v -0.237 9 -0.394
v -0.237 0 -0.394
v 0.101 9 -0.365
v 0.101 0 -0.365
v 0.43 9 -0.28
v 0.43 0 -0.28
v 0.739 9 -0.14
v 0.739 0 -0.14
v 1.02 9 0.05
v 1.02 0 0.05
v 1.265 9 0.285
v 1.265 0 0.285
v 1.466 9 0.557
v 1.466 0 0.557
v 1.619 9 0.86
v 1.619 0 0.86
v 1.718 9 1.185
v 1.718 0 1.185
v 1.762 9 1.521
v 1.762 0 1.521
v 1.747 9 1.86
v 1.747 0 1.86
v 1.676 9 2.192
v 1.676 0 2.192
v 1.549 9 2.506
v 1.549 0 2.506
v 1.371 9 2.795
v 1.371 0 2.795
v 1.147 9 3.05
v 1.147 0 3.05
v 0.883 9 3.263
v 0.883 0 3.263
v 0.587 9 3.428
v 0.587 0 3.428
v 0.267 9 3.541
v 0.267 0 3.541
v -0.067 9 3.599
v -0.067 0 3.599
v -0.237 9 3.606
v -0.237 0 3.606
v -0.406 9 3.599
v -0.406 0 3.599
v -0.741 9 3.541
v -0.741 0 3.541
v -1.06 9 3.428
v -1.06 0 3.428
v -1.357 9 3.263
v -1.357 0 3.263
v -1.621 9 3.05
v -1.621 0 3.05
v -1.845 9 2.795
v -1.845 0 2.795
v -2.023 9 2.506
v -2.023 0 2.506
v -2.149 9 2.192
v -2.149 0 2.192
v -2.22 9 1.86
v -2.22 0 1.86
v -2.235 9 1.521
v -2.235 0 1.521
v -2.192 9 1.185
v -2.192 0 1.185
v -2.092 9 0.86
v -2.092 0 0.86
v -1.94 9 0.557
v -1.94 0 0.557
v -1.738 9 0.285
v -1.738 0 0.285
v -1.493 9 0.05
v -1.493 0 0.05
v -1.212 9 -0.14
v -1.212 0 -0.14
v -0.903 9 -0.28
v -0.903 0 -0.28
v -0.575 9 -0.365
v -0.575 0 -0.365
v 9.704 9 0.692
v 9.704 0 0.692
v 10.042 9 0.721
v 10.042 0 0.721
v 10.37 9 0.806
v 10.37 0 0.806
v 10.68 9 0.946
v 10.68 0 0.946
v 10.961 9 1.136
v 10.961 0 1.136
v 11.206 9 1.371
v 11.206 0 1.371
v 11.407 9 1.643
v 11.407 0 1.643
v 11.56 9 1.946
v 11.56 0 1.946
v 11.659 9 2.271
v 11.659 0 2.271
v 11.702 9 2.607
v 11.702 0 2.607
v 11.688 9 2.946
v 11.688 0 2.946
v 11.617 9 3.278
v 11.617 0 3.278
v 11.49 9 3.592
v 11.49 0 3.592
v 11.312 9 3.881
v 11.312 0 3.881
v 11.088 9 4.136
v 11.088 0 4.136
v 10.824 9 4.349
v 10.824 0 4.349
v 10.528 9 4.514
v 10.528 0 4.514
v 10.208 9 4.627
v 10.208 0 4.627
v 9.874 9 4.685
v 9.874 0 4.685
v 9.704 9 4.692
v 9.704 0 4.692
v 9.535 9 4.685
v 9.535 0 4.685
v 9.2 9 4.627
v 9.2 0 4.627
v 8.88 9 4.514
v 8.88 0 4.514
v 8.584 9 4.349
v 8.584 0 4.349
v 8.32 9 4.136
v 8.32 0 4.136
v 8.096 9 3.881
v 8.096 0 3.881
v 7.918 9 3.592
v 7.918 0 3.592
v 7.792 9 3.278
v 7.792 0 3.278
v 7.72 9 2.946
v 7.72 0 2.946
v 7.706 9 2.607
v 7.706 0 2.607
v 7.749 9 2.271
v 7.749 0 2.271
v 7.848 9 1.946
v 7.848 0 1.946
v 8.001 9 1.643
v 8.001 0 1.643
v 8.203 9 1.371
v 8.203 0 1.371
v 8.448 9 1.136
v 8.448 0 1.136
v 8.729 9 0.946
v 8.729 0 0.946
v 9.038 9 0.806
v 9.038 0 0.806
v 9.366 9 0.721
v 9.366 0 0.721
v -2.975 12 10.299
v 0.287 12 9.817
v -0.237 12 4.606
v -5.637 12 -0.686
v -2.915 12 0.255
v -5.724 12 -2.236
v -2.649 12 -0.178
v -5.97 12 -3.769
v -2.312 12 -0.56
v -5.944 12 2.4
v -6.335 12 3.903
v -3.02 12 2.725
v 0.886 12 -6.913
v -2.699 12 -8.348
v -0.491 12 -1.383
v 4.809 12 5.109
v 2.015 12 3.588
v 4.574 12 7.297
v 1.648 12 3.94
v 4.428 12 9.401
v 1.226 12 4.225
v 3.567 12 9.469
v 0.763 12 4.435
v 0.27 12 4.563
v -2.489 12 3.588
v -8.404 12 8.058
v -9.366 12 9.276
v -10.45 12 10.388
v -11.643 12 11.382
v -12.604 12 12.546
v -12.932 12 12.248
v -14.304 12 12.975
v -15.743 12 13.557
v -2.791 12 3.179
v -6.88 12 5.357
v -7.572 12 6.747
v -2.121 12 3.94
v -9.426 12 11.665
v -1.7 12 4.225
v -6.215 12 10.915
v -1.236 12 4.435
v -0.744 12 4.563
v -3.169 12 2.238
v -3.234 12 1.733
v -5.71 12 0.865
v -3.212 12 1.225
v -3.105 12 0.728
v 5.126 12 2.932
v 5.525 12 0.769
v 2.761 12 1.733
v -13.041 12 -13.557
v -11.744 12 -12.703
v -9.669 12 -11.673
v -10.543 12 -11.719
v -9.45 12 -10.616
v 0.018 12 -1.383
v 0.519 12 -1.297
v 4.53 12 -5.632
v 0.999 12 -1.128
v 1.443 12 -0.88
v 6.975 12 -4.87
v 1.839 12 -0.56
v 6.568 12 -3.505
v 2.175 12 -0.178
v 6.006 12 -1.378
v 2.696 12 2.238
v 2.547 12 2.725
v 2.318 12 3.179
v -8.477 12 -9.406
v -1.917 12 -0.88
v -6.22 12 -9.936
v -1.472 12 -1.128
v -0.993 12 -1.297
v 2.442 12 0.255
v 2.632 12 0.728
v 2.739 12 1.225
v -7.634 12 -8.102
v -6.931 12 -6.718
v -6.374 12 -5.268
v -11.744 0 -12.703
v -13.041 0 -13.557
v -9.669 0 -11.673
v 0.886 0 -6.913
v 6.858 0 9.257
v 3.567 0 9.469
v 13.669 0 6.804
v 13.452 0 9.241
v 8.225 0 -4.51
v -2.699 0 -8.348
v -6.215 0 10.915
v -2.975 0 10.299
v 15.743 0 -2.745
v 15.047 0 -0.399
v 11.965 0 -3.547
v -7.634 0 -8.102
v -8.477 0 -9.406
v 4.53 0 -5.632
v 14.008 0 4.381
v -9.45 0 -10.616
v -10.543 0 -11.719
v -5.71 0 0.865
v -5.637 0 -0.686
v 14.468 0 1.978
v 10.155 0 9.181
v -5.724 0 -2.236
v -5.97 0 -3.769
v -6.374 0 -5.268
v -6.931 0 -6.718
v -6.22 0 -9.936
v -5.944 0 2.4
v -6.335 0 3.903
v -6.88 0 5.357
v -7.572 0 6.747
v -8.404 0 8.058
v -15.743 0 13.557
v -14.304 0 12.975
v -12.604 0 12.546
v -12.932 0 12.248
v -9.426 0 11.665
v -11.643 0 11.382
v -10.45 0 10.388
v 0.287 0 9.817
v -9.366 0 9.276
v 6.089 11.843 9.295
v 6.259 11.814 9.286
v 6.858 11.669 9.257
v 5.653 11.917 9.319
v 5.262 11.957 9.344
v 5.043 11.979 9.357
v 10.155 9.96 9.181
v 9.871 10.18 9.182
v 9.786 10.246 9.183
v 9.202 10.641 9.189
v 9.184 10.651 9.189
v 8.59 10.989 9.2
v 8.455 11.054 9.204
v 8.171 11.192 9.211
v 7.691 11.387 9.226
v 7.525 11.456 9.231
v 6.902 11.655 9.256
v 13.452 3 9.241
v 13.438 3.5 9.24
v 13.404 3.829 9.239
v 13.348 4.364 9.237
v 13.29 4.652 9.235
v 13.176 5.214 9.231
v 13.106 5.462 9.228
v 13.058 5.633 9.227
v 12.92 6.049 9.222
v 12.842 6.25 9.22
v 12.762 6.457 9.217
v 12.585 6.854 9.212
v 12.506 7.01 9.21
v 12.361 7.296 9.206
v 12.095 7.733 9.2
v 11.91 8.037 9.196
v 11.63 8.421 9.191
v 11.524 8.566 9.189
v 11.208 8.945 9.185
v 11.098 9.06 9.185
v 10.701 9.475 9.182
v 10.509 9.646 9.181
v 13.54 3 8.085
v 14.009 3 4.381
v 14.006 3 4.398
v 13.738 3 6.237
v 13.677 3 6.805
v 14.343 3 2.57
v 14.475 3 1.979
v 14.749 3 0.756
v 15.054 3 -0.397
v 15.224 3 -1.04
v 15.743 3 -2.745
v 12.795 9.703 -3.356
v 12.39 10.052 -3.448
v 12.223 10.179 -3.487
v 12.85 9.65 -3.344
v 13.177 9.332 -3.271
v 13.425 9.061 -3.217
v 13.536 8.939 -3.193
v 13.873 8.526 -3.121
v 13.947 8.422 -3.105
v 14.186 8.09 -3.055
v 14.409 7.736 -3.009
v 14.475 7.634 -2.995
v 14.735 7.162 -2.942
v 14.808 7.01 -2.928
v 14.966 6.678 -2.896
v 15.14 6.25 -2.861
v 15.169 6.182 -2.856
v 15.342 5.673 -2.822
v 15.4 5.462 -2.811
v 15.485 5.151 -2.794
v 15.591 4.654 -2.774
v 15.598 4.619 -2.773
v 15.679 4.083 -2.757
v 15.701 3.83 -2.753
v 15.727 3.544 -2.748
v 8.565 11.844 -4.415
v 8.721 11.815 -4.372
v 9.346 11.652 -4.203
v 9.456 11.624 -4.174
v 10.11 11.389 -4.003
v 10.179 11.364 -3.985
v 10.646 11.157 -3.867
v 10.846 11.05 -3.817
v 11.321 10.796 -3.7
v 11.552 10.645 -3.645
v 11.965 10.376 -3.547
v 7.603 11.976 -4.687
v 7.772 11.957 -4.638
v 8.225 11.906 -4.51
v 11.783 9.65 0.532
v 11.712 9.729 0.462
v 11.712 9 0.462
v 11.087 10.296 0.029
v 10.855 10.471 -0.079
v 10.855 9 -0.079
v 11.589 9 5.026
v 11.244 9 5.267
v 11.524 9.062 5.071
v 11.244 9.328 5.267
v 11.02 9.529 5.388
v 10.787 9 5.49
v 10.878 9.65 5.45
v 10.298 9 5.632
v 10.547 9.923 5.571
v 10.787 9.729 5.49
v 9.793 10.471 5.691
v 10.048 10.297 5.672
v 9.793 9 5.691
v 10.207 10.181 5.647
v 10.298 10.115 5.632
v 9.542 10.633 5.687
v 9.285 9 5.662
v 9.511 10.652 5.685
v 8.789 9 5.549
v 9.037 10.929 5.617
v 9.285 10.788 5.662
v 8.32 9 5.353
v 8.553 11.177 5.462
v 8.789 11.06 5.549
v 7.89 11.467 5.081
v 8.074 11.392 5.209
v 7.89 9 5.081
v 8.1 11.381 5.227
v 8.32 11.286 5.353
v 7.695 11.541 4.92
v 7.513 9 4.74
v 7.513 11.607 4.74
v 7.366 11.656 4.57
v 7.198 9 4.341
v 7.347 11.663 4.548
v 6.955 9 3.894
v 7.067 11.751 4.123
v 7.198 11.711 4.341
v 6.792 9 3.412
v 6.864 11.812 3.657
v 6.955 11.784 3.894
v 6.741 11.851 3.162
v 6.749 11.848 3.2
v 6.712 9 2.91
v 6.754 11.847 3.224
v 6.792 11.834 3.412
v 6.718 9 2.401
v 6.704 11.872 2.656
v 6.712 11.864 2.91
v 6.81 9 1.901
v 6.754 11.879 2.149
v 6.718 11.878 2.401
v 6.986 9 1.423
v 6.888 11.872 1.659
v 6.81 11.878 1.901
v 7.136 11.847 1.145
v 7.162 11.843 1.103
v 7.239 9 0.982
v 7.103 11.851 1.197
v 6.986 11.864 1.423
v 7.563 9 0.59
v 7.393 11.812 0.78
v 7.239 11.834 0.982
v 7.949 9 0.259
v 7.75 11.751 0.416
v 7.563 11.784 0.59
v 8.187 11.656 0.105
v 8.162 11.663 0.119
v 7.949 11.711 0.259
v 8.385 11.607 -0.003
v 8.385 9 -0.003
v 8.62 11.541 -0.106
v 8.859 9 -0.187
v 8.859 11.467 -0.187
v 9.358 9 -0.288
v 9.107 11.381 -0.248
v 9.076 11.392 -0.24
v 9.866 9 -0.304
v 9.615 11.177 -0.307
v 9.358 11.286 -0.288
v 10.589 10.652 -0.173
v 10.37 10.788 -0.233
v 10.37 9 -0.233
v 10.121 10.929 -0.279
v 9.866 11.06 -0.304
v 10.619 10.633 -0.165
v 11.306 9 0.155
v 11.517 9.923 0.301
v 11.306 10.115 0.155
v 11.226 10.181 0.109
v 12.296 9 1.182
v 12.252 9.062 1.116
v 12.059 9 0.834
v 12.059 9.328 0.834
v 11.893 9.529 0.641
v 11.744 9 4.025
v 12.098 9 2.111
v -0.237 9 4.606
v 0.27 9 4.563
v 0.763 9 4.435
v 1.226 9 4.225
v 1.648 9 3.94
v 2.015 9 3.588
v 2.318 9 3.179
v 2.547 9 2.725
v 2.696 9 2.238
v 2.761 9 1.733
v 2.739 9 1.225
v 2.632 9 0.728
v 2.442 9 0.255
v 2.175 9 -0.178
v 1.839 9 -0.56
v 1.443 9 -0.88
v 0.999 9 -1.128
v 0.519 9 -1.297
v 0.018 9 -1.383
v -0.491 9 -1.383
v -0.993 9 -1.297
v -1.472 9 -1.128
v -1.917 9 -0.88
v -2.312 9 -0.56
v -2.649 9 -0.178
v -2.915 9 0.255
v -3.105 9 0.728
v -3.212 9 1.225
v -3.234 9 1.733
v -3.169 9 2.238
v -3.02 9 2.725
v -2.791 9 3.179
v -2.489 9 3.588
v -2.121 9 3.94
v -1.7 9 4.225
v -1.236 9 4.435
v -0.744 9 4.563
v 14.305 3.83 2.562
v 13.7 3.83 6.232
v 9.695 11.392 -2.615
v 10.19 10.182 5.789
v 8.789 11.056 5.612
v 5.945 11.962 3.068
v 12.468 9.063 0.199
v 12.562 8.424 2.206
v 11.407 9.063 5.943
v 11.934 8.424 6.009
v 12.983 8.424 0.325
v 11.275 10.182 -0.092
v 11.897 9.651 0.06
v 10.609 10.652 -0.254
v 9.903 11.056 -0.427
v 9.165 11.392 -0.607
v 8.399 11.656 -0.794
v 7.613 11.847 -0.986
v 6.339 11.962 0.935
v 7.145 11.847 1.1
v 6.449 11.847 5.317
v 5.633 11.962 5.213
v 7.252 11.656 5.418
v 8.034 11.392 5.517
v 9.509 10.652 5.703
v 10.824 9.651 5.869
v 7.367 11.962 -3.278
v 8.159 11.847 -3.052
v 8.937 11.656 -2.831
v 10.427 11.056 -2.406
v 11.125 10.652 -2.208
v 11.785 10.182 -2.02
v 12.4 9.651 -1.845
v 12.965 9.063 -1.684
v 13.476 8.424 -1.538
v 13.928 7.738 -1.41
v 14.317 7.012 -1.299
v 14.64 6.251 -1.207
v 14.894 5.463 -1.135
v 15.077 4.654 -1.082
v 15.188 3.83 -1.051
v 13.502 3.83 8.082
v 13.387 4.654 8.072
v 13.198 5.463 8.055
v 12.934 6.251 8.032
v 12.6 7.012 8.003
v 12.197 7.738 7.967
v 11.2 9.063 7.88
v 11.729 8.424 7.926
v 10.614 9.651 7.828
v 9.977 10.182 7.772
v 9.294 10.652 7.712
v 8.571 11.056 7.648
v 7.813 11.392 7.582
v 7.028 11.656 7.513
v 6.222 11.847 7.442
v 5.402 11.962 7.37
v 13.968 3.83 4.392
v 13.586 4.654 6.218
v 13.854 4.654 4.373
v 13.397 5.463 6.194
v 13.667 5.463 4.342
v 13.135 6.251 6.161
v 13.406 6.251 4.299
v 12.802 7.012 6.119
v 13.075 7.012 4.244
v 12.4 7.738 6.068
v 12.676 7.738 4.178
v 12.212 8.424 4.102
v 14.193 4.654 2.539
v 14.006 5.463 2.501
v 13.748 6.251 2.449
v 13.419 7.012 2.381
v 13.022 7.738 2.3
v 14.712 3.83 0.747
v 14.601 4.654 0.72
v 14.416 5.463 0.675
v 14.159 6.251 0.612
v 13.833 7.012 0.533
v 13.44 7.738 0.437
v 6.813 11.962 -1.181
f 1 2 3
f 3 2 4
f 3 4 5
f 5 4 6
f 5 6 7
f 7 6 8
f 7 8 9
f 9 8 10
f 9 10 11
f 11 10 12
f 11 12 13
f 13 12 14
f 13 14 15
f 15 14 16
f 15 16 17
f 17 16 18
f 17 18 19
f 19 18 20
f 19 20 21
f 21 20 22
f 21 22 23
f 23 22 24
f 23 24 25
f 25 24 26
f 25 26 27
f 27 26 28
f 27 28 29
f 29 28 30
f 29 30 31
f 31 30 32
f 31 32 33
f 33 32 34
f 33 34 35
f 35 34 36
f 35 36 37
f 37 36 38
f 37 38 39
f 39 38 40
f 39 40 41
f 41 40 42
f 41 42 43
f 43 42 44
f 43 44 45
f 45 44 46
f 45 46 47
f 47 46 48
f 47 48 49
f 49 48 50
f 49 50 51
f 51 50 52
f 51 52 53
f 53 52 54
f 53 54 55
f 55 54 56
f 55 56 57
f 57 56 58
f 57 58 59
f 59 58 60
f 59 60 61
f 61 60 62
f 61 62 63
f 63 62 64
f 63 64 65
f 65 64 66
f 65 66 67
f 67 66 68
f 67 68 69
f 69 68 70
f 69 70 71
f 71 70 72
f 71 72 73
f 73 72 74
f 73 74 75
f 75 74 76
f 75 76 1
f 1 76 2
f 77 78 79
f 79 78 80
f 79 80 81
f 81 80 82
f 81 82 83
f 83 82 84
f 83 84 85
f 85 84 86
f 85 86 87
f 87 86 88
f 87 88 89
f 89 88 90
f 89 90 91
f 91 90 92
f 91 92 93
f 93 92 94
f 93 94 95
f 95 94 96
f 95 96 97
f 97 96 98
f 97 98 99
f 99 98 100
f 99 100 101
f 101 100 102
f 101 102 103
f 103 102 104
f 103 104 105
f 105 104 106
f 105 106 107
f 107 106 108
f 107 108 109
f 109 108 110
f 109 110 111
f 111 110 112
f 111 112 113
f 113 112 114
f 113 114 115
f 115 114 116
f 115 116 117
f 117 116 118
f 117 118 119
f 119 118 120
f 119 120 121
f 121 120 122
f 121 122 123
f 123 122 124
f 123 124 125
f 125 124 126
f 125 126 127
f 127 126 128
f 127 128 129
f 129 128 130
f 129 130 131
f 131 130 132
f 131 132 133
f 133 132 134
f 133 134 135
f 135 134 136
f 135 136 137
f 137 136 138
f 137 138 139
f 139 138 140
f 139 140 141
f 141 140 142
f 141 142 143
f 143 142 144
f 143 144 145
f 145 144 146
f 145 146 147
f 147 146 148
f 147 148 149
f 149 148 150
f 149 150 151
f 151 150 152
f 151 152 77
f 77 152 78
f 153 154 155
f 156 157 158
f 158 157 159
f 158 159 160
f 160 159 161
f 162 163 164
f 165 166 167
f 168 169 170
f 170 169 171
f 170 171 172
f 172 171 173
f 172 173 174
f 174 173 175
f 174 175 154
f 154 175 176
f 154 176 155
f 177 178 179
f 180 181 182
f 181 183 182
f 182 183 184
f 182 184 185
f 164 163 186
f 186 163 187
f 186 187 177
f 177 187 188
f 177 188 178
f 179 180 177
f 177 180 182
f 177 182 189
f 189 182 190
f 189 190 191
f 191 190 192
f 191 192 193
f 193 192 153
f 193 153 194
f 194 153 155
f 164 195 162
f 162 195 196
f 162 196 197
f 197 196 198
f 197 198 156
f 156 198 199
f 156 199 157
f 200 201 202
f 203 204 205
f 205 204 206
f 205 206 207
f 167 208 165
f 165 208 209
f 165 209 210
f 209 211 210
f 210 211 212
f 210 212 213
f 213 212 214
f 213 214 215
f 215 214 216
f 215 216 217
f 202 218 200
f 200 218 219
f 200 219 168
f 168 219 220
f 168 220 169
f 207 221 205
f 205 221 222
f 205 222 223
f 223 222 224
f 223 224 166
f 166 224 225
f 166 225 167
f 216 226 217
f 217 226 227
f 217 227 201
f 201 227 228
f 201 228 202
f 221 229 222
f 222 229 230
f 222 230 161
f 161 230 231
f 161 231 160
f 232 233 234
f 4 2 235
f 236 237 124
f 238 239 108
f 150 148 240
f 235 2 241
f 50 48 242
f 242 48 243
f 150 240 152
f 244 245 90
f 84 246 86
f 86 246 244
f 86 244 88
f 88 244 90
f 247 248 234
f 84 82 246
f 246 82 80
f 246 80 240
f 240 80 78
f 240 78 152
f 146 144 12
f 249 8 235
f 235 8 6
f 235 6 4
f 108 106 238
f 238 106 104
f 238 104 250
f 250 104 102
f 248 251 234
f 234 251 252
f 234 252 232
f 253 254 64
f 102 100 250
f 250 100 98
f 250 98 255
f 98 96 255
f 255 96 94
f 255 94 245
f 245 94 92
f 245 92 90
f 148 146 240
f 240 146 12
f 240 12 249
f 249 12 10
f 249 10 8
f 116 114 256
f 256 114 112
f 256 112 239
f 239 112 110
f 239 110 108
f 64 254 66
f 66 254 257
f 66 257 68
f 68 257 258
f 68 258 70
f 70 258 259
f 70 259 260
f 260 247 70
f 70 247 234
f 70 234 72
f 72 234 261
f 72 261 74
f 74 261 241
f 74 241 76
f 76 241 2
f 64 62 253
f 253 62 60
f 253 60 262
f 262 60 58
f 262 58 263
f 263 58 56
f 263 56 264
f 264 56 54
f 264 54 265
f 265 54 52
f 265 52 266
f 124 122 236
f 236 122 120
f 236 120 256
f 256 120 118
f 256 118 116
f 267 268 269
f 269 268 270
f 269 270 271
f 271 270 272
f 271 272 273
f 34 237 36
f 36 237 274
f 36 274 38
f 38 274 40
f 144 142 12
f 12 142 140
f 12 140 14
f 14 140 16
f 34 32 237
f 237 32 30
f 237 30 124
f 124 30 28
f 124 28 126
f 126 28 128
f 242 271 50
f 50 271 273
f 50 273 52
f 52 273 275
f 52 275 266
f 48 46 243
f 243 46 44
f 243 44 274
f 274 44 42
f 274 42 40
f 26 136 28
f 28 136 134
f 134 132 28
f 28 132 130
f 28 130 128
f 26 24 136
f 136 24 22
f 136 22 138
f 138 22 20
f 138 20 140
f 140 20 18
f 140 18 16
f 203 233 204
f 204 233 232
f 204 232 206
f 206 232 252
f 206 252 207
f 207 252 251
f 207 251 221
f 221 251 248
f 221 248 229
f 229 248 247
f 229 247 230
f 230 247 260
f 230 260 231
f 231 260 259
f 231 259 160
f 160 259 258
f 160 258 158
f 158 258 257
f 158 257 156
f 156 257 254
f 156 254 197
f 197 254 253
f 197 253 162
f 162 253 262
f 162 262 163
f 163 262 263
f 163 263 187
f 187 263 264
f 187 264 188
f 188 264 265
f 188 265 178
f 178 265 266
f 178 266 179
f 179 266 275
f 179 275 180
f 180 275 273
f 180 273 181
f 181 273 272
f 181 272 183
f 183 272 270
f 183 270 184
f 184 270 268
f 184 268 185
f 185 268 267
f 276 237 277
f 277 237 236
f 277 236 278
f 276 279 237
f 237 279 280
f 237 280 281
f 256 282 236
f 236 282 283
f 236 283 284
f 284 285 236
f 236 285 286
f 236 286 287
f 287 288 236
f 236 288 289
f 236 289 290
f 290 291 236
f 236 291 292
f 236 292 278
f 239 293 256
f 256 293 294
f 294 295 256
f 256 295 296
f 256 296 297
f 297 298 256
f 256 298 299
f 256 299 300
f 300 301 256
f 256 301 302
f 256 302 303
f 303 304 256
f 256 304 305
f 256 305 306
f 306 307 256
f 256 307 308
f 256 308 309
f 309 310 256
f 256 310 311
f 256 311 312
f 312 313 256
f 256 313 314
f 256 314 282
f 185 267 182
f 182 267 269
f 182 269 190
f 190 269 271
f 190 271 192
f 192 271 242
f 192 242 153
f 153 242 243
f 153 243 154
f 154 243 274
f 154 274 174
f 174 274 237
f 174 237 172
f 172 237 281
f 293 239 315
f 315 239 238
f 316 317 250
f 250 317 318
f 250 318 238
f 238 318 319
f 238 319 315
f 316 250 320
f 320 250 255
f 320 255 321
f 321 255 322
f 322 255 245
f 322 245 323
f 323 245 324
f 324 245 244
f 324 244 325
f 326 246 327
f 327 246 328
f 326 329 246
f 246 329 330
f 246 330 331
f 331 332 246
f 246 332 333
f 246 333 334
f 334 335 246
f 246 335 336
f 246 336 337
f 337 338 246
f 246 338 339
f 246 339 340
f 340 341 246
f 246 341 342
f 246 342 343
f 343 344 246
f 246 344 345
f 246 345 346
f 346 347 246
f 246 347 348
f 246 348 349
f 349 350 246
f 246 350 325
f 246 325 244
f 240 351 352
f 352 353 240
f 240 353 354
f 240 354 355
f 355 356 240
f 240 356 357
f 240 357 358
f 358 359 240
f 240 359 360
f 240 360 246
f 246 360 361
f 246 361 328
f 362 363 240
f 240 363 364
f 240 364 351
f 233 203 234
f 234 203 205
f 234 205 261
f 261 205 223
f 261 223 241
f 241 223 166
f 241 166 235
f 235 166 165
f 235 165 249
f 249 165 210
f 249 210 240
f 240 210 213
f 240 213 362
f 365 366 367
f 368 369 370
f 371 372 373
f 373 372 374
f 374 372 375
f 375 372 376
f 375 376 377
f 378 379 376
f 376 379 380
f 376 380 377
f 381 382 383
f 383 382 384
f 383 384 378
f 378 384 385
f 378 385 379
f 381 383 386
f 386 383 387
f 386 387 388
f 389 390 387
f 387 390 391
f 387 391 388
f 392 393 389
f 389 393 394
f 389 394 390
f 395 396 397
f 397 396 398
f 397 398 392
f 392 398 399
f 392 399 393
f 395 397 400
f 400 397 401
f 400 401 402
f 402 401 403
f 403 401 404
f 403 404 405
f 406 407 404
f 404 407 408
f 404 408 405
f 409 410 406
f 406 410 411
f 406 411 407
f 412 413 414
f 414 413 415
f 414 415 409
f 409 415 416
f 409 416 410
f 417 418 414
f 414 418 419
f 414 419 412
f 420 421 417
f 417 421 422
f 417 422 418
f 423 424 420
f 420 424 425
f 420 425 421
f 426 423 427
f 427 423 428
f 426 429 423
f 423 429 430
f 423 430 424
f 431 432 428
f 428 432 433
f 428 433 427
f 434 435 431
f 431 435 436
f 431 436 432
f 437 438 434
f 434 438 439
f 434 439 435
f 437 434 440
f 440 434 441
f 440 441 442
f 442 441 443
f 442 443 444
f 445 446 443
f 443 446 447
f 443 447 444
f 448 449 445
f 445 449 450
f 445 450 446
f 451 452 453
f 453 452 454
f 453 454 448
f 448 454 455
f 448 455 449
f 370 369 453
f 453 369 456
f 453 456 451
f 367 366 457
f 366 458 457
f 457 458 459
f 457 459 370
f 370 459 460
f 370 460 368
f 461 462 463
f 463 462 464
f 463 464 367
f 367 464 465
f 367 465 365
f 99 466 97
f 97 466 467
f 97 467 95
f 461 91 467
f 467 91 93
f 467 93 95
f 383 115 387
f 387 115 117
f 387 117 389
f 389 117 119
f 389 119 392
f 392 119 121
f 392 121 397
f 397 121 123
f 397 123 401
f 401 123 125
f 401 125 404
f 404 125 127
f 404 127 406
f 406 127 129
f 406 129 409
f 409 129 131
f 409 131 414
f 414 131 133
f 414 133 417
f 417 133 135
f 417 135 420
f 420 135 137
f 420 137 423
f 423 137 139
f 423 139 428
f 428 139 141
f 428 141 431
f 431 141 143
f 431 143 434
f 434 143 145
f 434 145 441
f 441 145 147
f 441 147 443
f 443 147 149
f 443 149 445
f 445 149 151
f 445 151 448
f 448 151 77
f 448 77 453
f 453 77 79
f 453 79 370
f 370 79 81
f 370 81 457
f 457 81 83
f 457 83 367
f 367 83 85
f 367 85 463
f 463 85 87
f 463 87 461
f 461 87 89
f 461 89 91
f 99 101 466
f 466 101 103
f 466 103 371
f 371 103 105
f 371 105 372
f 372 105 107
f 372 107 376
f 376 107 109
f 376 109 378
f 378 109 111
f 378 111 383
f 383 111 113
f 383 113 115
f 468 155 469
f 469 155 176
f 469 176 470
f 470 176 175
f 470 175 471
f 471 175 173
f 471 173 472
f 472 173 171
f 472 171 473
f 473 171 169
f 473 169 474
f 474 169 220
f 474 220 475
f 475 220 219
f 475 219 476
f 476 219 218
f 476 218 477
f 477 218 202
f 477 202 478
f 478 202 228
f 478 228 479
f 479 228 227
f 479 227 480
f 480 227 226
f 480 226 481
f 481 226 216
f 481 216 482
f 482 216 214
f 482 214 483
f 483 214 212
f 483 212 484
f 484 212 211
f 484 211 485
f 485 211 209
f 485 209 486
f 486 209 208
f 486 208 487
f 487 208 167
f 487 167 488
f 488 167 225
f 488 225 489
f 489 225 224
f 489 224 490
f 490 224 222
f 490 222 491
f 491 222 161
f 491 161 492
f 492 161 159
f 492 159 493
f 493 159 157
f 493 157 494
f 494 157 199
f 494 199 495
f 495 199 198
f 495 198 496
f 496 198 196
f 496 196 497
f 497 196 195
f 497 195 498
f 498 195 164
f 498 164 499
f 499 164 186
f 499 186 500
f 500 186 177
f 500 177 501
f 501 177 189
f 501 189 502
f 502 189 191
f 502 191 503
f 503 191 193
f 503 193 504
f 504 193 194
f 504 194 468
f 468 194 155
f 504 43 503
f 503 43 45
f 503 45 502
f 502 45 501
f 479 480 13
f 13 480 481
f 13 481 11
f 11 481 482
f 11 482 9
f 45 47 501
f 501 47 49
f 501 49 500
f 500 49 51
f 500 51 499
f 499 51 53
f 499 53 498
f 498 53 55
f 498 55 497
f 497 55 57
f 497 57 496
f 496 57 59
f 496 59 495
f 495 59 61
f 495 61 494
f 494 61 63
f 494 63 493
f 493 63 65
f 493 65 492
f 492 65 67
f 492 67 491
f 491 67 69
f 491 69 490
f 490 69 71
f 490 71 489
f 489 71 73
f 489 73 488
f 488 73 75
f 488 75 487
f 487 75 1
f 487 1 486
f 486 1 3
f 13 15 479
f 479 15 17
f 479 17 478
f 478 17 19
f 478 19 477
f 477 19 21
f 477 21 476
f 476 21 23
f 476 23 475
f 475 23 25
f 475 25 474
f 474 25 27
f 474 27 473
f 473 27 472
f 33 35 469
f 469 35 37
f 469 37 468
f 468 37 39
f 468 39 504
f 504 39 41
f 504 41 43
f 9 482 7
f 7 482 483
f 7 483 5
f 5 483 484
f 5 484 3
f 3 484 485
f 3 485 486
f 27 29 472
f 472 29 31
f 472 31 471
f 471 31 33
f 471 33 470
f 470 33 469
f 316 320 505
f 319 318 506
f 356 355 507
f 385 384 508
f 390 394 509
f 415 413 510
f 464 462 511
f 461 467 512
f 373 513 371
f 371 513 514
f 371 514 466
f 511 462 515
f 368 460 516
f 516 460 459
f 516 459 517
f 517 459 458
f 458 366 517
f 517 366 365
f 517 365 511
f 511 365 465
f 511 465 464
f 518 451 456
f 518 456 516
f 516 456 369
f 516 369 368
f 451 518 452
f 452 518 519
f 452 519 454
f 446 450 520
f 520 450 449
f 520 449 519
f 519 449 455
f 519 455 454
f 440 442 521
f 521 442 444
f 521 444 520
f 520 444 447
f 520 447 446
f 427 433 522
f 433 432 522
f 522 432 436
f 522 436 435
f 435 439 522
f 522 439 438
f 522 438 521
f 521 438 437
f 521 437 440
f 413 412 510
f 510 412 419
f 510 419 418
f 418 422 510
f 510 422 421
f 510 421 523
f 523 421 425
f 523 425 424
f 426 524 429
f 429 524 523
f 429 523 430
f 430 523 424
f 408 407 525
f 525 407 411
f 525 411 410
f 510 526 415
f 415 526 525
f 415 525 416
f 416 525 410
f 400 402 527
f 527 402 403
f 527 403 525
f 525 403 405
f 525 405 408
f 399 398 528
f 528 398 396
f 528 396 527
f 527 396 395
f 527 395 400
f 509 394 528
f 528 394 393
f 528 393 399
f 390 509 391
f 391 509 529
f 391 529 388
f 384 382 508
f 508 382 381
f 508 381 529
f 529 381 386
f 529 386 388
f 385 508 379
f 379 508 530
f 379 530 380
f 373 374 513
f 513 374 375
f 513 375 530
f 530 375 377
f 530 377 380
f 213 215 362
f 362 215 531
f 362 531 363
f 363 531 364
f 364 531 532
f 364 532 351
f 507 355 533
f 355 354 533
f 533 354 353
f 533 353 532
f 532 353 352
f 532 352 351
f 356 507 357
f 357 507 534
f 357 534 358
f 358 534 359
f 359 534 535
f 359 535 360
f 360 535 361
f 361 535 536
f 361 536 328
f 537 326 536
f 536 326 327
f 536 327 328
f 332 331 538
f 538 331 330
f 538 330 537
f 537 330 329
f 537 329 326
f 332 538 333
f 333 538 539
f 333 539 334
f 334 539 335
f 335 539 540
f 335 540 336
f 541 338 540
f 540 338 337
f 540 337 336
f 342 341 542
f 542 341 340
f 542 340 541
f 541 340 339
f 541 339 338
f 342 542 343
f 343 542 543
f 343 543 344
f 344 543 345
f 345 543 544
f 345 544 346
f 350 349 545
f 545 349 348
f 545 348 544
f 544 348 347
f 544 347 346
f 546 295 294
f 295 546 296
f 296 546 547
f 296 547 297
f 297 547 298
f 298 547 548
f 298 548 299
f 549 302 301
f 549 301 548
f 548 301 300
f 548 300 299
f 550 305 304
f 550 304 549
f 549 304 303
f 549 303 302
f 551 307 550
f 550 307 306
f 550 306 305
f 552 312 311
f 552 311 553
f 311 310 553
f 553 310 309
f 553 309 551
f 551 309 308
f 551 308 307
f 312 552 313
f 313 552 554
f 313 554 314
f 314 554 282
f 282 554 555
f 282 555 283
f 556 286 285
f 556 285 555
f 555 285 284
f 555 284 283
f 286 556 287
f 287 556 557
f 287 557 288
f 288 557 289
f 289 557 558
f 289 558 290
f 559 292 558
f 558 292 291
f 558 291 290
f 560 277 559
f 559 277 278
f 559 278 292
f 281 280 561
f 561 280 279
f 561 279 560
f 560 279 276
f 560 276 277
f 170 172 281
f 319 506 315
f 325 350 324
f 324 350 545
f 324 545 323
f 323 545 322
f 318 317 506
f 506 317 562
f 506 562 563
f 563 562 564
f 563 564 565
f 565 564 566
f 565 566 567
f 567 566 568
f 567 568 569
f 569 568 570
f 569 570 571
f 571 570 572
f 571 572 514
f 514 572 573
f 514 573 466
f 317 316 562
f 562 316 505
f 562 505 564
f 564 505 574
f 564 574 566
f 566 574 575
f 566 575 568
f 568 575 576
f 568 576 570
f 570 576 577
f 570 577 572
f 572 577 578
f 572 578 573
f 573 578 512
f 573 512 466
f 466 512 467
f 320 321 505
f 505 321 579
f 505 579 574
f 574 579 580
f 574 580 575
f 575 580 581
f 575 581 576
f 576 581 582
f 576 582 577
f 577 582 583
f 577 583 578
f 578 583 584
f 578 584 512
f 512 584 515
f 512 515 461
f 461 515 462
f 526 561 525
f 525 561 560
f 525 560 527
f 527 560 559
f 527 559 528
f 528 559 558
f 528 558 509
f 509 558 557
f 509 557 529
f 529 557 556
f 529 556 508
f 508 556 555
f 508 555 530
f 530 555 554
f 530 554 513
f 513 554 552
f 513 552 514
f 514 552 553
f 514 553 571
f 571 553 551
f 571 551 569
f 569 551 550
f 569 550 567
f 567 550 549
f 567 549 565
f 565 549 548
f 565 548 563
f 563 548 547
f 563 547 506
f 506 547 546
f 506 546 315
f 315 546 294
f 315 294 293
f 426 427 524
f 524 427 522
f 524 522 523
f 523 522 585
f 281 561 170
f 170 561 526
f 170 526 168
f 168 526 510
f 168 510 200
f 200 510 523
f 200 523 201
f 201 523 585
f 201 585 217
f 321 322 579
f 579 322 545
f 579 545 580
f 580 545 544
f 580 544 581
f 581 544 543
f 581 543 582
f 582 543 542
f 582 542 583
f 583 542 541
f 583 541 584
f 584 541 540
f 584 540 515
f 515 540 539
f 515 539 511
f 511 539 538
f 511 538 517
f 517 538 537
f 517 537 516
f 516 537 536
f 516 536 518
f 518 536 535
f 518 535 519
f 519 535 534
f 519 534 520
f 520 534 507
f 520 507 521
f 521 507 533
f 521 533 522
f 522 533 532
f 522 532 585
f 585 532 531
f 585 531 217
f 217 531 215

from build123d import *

# Parameters (mm, degrees)
SKETCH4_R           = 2
BOSS_EXTRUDE3_DEPTH = 12
SKETCH5_R           = 3
CUT_EXTRUDE1_DEPTH  = 3
FILLET2_R           = 9


with BuildPart() as part:
    # Sketch4 → Boss-Extrude3 (new body)
    with BuildSketch(Plane(origin=(0, 0, 0), x_dir=(1, 0, 0), z_dir=(0, 1, 0))):
        with BuildLine():
            ThreePointArc((-15.743367066, -13.557035328), (-1.346456096, -10.041025711), (13.451962467, -9.240914984))
            ThreePointArc((13.451962467, -9.240914984), (14.223098903, -3.176461435), (15.743367066, 2.744774328))
            ThreePointArc((15.743367066, 2.744774328), (0.886180468, 6.912573541), (-13.040688221, 13.557035328))
            ThreePointArc((-13.040688221, 13.557035328), (-5.710452271, -0.865362874), (-15.743367066, -13.557035328))
        make_face()
        with Locations(Location((-0.236677372, -1.605971843, 0), (0, 0, 270))):
            Circle(SKETCH4_R, mode=Mode.SUBTRACT)
        with Locations(Location((9.704188058, -2.691879069, 0), (0, 0, 270))):
            Circle(SKETCH4_R, mode=Mode.SUBTRACT)
    extrude(amount=BOSS_EXTRUDE3_DEPTH)

    # Sketch5 → Cut-Extrude1 (cut)
    with BuildSketch(Plane(origin=(0, 12, 0), x_dir=(1, 0, 0), z_dir=(0, 1, 0))):
        with Locations(Location((-0.236677372, -1.605971843, 0), (0, 0, 270))):
            Circle(SKETCH5_R)
        with Locations(Location((9.704188058, -2.691879069, 0), (0, 0, 270))):
            Circle(SKETCH5_R)
    extrude(amount=-CUT_EXTRUDE1_DEPTH, mode=Mode.SUBTRACT)

    # Fillet2
    # the kernel refuses this fillet: 9 mm, written as the material it takes off along each edge
    with BuildSketch(Plane(origin=(62.351465844, 12, 12.377564393), x_dir=(-0.9229460384493624, 0, 0.38492935729900885), z_dir=(0.38492935729900885, 0, 0.9229460384493624))) as fillet2_piece_1:
        with BuildLine():
            CenterArc((49 + FILLET2_R, FILLET2_R), FILLET2_R, 180, 90)
            Line((49 + FILLET2_R, 0), (49, 0))
            Line((49, 0), (49, FILLET2_R))
        make_face()
    revolve(axis=Axis((62.351465844, 12, 12.377564393), (0, -1, 0)), revolution_arc=66.924942426, mode=Mode.SUBTRACT)


solid = part.part
